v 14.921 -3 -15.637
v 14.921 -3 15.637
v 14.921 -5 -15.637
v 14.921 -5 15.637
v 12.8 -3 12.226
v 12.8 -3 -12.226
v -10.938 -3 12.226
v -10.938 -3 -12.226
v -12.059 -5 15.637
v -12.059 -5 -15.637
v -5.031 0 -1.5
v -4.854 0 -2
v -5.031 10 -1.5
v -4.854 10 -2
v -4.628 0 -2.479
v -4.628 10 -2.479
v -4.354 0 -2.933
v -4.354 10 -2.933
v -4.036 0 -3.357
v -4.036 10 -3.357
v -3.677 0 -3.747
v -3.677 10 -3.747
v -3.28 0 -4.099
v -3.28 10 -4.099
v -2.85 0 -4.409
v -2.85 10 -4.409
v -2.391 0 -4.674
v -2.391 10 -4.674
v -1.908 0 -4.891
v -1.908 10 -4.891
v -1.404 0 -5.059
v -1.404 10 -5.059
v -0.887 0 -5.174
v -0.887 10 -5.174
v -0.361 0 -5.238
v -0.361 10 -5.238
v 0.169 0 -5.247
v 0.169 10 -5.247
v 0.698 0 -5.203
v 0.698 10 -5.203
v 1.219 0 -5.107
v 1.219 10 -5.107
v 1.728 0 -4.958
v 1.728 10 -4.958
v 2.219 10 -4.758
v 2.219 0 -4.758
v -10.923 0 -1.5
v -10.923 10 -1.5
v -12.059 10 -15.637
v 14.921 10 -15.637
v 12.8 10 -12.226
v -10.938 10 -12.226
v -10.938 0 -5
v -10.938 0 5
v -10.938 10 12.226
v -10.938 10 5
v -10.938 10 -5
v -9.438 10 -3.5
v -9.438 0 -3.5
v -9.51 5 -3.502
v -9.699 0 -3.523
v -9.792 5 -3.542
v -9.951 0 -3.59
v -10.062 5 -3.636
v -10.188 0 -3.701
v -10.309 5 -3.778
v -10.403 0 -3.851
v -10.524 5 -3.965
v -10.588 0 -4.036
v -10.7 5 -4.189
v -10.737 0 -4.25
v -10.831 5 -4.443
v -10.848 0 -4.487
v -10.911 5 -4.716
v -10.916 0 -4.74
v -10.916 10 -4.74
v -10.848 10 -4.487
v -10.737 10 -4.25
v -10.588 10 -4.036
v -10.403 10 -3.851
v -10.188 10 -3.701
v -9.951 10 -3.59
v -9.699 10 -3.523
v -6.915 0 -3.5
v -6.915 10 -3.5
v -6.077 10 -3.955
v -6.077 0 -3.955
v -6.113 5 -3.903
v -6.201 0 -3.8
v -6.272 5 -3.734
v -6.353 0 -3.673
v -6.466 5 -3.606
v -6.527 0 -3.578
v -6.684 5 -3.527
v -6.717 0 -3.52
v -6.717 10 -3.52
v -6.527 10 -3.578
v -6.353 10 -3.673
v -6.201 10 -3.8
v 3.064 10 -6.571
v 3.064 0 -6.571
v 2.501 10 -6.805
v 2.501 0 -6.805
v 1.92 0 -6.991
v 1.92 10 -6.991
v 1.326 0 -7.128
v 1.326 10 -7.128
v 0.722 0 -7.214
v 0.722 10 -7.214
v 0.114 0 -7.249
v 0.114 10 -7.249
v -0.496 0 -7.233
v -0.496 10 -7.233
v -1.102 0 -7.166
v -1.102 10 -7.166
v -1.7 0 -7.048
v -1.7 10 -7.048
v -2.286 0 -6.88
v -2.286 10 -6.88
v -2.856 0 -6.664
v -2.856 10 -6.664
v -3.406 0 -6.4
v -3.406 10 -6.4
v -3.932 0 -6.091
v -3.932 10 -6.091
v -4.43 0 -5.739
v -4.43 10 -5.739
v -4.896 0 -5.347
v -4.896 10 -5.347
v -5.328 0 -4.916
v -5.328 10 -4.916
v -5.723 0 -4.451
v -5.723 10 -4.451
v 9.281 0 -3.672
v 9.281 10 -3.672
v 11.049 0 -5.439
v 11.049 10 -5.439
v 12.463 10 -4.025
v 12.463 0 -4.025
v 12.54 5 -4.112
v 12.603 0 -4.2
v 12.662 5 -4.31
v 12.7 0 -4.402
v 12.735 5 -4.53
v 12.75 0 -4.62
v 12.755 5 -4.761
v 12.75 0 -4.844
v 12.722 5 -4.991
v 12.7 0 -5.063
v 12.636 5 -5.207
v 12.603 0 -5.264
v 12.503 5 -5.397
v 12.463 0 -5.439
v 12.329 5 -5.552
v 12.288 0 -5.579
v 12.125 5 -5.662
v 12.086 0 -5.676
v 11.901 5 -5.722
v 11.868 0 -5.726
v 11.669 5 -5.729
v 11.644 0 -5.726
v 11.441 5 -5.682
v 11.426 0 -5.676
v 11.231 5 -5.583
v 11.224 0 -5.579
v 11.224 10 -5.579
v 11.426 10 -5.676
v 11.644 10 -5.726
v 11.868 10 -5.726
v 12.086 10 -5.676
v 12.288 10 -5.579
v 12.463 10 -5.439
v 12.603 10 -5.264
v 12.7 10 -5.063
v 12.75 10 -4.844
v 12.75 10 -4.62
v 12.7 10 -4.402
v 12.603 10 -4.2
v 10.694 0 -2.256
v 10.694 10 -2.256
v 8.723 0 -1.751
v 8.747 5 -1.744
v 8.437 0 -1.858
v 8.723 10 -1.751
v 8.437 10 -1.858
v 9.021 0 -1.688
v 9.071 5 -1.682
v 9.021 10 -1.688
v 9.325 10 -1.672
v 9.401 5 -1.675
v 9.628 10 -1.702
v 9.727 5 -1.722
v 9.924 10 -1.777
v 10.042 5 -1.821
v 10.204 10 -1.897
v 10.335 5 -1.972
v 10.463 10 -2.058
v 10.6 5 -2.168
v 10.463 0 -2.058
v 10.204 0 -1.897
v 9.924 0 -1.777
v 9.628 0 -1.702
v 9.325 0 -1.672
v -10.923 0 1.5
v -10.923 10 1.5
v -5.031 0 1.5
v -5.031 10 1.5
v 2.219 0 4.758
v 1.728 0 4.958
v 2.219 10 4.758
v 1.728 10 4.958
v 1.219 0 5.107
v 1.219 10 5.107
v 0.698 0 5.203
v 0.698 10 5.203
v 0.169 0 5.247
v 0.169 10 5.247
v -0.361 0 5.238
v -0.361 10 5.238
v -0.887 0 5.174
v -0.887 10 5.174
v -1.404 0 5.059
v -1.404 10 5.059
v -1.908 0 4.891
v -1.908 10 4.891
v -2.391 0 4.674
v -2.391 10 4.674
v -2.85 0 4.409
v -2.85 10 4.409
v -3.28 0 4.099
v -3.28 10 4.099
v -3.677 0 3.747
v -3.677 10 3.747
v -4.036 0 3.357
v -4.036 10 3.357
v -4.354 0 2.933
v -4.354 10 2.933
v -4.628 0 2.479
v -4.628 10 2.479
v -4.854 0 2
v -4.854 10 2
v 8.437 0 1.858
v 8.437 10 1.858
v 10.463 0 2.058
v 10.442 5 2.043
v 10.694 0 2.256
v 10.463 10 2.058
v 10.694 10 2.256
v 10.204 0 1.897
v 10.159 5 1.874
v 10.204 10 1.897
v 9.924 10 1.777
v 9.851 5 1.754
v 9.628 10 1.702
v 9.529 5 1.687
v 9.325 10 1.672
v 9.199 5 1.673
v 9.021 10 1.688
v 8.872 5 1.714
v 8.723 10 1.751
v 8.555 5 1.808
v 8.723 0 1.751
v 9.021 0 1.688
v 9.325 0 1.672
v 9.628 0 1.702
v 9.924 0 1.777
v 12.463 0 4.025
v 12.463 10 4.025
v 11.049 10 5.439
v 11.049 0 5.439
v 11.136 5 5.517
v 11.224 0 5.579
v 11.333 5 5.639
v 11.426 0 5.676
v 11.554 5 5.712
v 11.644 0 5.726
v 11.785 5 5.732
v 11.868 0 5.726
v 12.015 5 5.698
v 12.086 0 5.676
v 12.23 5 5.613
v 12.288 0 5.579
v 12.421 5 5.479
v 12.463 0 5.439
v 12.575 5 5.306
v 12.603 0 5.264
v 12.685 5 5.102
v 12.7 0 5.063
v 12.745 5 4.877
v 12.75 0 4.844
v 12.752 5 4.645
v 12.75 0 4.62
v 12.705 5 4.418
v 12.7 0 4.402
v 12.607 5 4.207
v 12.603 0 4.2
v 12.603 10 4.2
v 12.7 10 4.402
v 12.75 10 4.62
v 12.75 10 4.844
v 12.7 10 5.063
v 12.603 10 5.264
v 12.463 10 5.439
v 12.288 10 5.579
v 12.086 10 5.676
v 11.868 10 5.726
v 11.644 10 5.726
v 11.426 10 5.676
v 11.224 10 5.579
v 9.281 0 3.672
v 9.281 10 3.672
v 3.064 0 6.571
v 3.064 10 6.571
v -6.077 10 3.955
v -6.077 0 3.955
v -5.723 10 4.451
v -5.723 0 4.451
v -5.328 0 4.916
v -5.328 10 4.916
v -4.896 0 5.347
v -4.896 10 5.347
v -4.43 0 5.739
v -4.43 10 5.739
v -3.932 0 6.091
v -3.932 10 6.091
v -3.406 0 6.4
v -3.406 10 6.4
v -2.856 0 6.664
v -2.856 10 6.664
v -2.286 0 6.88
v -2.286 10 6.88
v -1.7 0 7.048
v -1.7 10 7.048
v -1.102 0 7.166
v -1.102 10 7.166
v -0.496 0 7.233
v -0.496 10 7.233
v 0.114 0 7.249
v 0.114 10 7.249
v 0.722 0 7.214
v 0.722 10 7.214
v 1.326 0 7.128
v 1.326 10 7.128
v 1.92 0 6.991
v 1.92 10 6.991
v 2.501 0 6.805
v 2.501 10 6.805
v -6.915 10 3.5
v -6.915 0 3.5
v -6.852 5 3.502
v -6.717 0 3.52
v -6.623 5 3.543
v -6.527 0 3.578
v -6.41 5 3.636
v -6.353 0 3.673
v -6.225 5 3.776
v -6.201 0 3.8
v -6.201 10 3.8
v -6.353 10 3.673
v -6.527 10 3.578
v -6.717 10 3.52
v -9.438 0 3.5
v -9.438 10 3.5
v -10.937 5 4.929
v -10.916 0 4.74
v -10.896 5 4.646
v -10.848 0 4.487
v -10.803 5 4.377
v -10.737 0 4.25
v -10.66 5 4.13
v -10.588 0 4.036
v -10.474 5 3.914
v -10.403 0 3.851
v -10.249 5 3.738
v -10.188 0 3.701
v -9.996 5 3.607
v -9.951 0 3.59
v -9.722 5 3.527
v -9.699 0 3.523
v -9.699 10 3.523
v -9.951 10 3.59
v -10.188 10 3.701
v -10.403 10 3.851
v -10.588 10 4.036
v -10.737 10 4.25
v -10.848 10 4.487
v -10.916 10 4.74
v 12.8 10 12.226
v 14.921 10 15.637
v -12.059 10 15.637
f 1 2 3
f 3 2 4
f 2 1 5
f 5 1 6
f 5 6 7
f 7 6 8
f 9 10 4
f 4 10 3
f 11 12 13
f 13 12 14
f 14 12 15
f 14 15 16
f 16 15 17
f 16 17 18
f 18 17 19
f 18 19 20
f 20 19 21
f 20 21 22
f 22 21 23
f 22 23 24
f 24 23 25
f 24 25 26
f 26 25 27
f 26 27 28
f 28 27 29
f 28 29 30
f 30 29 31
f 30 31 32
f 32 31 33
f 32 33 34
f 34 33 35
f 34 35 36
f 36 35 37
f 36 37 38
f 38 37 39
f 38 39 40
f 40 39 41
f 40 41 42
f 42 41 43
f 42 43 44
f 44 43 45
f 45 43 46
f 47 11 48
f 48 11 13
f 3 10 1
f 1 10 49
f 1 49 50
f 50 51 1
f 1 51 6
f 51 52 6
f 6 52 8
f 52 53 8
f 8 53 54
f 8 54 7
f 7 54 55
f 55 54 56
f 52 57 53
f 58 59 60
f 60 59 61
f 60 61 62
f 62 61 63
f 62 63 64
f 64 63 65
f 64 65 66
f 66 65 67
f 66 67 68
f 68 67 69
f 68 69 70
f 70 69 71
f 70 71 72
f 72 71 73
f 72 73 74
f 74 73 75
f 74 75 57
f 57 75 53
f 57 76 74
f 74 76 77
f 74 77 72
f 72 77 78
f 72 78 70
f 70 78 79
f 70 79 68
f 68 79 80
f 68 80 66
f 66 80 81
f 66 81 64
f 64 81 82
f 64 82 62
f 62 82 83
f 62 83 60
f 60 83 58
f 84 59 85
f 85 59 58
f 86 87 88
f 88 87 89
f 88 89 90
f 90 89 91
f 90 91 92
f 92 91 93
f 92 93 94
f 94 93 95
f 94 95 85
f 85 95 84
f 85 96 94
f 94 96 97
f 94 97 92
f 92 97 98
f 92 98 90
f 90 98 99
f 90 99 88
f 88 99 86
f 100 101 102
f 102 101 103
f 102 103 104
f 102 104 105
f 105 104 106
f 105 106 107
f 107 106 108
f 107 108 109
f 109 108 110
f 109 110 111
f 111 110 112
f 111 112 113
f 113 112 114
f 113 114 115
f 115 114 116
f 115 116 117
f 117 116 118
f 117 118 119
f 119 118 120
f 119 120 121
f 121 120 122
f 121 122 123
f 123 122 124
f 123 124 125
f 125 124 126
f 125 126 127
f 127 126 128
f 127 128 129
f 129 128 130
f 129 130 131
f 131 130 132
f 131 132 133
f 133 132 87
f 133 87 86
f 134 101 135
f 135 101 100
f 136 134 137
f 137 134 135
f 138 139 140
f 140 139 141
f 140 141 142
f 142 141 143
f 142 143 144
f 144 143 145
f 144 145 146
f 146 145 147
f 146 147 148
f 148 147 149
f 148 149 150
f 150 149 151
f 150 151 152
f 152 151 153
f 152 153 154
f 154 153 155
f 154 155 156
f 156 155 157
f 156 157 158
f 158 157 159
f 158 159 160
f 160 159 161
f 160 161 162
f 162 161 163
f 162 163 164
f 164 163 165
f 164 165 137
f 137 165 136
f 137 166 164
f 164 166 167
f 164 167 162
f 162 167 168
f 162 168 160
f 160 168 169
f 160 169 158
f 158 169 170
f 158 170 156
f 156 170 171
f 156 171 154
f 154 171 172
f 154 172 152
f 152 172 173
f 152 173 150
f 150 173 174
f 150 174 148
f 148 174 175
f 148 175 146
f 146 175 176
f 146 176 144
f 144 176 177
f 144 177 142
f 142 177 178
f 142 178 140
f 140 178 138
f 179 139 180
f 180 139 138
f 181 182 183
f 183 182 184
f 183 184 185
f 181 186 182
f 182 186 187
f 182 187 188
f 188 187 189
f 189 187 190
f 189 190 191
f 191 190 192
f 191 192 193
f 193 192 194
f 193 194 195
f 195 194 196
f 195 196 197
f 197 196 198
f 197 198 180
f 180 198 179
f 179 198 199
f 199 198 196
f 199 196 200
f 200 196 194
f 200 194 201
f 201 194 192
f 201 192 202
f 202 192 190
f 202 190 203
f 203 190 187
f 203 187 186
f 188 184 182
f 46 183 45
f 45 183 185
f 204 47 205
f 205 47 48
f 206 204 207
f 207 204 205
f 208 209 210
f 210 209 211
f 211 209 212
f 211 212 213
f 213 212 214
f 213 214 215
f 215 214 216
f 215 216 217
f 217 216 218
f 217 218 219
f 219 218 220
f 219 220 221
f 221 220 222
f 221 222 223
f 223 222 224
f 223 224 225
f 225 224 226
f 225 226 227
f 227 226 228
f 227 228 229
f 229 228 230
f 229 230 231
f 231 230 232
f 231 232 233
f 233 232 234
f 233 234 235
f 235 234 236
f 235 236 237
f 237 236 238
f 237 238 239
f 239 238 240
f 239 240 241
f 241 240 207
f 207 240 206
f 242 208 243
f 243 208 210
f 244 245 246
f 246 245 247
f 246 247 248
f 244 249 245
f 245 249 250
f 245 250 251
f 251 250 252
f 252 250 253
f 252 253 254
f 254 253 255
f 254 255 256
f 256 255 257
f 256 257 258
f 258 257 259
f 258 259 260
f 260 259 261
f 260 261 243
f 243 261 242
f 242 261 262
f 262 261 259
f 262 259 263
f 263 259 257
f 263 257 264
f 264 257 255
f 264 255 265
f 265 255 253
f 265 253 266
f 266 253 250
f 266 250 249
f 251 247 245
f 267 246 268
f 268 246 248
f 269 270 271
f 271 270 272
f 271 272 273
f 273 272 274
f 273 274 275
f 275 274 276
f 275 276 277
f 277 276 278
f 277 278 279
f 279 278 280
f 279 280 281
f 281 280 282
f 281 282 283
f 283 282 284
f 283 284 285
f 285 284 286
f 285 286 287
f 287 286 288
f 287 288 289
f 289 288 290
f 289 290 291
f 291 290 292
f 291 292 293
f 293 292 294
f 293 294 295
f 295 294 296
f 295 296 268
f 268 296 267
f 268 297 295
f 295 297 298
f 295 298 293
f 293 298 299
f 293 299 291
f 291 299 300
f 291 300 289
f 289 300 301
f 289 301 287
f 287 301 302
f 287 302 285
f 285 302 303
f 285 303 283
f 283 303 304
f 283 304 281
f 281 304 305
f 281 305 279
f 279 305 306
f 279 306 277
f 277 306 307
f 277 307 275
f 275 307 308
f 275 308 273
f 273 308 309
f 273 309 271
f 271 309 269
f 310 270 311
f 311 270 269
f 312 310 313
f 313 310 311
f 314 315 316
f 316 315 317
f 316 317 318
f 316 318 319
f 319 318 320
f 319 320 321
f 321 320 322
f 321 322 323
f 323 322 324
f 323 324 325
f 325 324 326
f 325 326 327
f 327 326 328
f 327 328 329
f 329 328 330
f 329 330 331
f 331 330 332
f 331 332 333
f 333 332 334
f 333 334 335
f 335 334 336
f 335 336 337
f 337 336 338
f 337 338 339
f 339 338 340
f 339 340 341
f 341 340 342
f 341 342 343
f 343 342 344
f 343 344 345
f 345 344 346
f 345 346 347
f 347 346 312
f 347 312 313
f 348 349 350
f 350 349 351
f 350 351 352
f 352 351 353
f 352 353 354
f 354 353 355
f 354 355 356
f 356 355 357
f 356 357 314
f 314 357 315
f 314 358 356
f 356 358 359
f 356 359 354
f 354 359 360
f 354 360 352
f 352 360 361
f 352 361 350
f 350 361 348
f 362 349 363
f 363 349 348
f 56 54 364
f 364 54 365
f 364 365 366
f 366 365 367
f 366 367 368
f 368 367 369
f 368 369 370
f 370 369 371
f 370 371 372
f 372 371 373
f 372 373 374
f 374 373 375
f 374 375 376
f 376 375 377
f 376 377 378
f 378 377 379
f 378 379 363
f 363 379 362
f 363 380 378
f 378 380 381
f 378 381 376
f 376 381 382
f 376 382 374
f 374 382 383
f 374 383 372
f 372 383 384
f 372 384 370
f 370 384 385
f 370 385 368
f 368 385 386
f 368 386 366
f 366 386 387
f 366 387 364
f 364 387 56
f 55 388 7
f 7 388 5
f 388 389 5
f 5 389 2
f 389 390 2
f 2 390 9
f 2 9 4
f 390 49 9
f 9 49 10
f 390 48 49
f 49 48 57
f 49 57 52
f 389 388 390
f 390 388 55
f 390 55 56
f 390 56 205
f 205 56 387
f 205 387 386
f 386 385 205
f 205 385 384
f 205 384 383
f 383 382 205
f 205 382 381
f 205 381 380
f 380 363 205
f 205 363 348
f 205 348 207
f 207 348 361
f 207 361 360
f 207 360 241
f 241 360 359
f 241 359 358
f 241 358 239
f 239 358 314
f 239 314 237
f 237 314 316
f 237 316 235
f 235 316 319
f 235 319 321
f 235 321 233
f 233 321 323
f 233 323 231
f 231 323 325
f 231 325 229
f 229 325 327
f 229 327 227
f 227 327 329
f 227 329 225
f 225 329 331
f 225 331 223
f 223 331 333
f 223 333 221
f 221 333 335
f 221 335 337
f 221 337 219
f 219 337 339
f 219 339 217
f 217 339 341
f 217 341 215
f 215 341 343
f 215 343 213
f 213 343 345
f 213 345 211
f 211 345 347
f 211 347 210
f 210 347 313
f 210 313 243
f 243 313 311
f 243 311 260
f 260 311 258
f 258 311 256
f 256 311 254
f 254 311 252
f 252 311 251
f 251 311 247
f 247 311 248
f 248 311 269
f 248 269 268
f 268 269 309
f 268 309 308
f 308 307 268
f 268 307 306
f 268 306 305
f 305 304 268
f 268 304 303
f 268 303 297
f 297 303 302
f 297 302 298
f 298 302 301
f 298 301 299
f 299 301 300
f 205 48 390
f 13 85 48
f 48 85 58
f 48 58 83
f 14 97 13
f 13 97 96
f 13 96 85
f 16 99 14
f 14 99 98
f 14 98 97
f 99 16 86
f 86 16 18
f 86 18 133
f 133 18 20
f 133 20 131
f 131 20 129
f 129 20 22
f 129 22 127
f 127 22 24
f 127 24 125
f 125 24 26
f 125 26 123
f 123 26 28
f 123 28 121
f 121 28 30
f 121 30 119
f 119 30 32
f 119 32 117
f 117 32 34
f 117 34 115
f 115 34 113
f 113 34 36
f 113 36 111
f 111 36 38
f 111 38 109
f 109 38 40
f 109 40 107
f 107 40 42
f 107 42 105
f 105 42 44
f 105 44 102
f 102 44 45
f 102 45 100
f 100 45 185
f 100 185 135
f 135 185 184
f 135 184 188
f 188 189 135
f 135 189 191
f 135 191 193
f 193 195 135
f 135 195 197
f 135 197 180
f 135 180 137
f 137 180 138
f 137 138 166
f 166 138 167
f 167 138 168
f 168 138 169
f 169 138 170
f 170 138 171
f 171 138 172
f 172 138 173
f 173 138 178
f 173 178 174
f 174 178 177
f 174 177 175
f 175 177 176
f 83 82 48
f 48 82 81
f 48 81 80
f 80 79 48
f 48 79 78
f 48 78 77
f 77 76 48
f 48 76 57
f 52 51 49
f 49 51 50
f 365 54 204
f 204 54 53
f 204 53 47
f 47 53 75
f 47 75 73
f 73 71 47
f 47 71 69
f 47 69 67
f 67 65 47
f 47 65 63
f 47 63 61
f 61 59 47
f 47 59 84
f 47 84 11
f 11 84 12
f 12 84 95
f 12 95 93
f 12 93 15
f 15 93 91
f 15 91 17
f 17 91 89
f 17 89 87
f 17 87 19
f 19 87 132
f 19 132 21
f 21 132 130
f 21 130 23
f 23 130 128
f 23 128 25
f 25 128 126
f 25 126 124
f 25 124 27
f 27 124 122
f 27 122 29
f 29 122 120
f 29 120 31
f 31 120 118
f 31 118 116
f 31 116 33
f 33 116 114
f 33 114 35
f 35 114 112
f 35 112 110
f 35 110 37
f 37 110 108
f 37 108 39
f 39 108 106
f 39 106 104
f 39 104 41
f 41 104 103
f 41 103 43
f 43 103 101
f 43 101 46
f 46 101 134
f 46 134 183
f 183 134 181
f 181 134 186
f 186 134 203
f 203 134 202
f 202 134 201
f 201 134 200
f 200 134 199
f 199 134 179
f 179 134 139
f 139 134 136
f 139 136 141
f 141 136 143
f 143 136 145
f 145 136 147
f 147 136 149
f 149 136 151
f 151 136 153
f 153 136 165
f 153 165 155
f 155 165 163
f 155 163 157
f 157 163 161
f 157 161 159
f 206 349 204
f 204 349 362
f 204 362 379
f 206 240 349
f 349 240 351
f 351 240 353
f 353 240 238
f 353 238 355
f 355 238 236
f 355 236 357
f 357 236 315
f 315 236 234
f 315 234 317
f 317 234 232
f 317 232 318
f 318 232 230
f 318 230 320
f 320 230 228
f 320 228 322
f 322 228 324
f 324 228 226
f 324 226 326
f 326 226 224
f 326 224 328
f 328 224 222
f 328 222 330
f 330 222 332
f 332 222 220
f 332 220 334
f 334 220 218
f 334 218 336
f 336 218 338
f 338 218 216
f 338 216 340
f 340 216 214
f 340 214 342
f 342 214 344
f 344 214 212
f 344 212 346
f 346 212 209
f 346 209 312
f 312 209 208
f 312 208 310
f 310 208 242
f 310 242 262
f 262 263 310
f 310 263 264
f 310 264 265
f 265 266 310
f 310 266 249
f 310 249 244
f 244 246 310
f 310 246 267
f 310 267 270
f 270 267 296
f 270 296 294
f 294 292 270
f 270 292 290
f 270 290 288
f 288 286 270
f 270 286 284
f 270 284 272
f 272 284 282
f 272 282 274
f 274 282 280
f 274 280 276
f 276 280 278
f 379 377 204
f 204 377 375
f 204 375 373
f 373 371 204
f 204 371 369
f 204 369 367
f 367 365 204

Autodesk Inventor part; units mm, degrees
ref_plane "YZ Plane" through (0, 0, 0) normal (1, 0, 0) x (0, 1, 0)
ref_plane "XZ Plane" through (0, 0, 0) normal (0, 1, 0) x (-1, 0, 0)
ref_plane "XY Plane" through (0, 0, 0) normal (0, 0, 1) x (1, 0, 0)
sketch "Sketch1" plane through (0, 0, 0) normal (0, 1, 0) x (-1, 0, 0)
  circle A0 centre (0, 0) radius 5
  arc A1 (5.25, 0) -> (-2.2187, -4.7581) centre (0, 0) ccw
  line L0 (-2.2187, -4.7581) -> (-8.4373, -1.8583)
  arc A2 (-8.4373, -1.8583) -> (-10.6939, -2.2562) centre (-9.2815, -3.6687) ccw
  line L1 (-10.6939, -2.2562) -> (-12.463, -4.0253)
  arc A3 (-12.463, -4.0253) -> (-11.0487, -5.4395) centre (-11.7558, -4.7324) ccw
  line L2 (-11.0487, -5.4395) -> (-9.281, -3.6717)
  line L3 (-9.281, -3.6717) -> (-3.064, -6.5707)
  arc A4 (-3.064, -6.5707) -> (6.0765, -3.9545) centre (0, 0) ccw
  line L4 (6.9147, -3.5) -> (9.4384, -3.5)
  line L5 (5.0312, -1.5) -> (10.9225, -1.5)
  line L6 (10.9384, -5) -> (10.9384, -12.2255)
  line L7 (10.9384, -12.2255) -> (-12.8, -12.2255)
  line L8 (10.9225, -1.5) -> (10.9225, 0)
  line L9 (12.0588, 0) -> (12.0588, -15.6375)
  line L10 (12.0588, -15.6375) -> (-14.9211, -15.6375)
  line L11 (0, 0) -> (7.7398, 0) construction
  line L12 (-12.8, -12.2255) -> (-14.9211, -15.6375)
  line L13 (10.9225, 0) -> (12.0588, 0)
  arc A5 (5.0312, -1.5) -> (5.25, 0) centre (0, 0) ccw
  arc A6 (-2.2187, -4.7581) -> (5.0312, -1.5) centre (0, 0) ccw
  arc A7 (10.9384, -5) -> (9.4384, -3.5) centre (9.4384, -5) ccw
  arc A8 (6.9147, -3.5) -> (6.0765, -3.9545) centre (6.9147, -4.5) ccw
  line L14 (-2.2187, 4.7581) -> (-8.4373, 1.8583)
  arc A9 (-10.6939, 2.2562) -> (-8.4373, 1.8583) centre (-9.2815, 3.6687) ccw
  line L15 (-10.6939, 2.2562) -> (-12.463, 4.0253)
  arc A10 (-11.0487, 5.4395) -> (-12.463, 4.0253) centre (-11.7558, 4.7324) ccw
  line L16 (-11.0487, 5.4395) -> (-9.281, 3.6717)
  line L17 (-9.281, 3.6717) -> (-3.064, 6.5707)
  arc A11 (6.0765, 3.9545) -> (-3.064, 6.5707) centre (0, 0) ccw
  line L18 (6.9147, 3.5) -> (9.4384, 3.5)
  line L19 (5.0312, 1.5) -> (10.9225, 1.5)
  line L20 (10.9384, 5) -> (10.9384, 12.2255)
  line L21 (10.9384, 12.2255) -> (-12.8, 12.2255)
  line L22 (10.9225, 1.5) -> (10.9225, 0)
  line L23 (12.0588, 0) -> (12.0588, 15.6375)
  line L24 (12.0588, 15.6375) -> (-14.9211, 15.6375)
  line L25 (-12.8, 12.2255) -> (-14.9211, 15.6375)
  arc A12 (5.0312, 1.5) -> (-2.2187, 4.7581) centre (0, 0) ccw
  arc A13 (9.4384, 3.5) -> (10.9384, 5) centre (9.4384, 5) ccw
  arc A14 (6.0765, 3.9545) -> (6.9147, 3.5) centre (6.9147, 4.5) ccw
  point P0 (6.3492, -3.5)
  point P1 (10.9384, -3.5)
  point P2 (6.3492, 3.5)
  point P3 (10.9384, 3.5)
  dimension "d0" = 10
  dimension "d1" = 10.5
  dimension "d2" = 2
  dimension "d3" = 2
  dimension "d4" = 2
  dimension "d5" = 25
  dimension "d6" = 1.5
  dimension "d7" = 110
  dimension "d8" = 2.5
  dimension "d11" = 1.5
  dimension "d12" = 1
extrude "Extrusion1" add sketch "Sketch1" along normal blind 10 contours A1 L14 A9 L15 A10 L16 L17 A11 A14 L18 A13 L20 L21 L25 L24 L23 L13 L22 L19 | L5 L8 L13 L9 L10 L12 L7 L6 A7 L4 A8 A4 L3 L2 A3 L1 A2 L0 A6
sketch "Sketch2" plane through (0, 0, 0) normal (0, -1, 0) x (1, 0, 0)
  line L0 (-10.9225, 1.5) -> (-10.9225, -1.5) projected
  line L1 (-5.0312, 1.5) -> (-10.9225, 1.5) projected
  arc A0 (2.2187, 4.7581) -> (-5.0312, 1.5) centre (0, 0) ccw projected
  line L2 (8.4373, 1.8583) -> (2.2187, 4.7581) projected
  arc A1 (8.4373, 1.8583) -> (10.6939, 2.2562) centre (9.2815, 3.6687) ccw projected
  line L3 (12.463, 4.0253) -> (10.6939, 2.2562) projected
  arc A2 (12.463, 4.0253) -> (11.0487, 5.4395) centre (11.7558, 4.7324) ccw projected
  line L4 (9.281, 3.6717) -> (11.0487, 5.4395) projected
  line L5 (3.064, 6.5707) -> (9.281, 3.6717) projected
  arc A3 (3.064, 6.5707) -> (-6.0765, 3.9545) centre (0, 0) ccw projected
  arc A4 (-6.9147, 3.5) -> (-6.0765, 3.9545) centre (-6.9147, 4.5) ccw projected
  line L6 (-9.4384, 3.5) -> (-6.9147, 3.5) projected
  arc A5 (-10.9384, 5) -> (-9.4384, 3.5) centre (-9.4384, 5) ccw projected
  line L7 (-10.9384, 12.2255) -> (-10.9384, 5) projected
  line L8 (12.8, 12.2255) -> (-10.9384, 12.2255) projected
  line L9 (14.9211, 15.6375) -> (12.8, 12.2255) projected
  line L10 (-12.0588, 15.6375) -> (14.9211, 15.6375) projected
  line L11 (-12.0588, -15.6375) -> (-12.0588, 15.6375) projected
  line L12 (14.9211, -15.6375) -> (-12.0588, -15.6375) projected
  line L13 (12.8, -12.2255) -> (14.9211, -15.6375) projected
  line L14 (-10.9384, -12.2255) -> (12.8, -12.2255) projected
  line L15 (-10.9384, -5) -> (-10.9384, -12.2255) projected
  arc A6 (-9.4384, -3.5) -> (-10.9384, -5) centre (-9.4384, -5) ccw projected
  line L16 (-6.9147, -3.5) -> (-9.4384, -3.5) projected
  arc A7 (-6.0765, -3.9545) -> (-6.9147, -3.5) centre (-6.9147, -4.5) ccw projected
  arc A8 (-6.0765, -3.9545) -> (3.064, -6.5707) centre (0, 0) ccw projected
  line L17 (9.281, -3.6717) -> (3.064, -6.5707) projected
  line L18 (11.0487, -5.4395) -> (9.281, -3.6717) projected
  arc A9 (11.0487, -5.4395) -> (12.463, -4.0253) centre (11.7558, -4.7324) ccw projected
  line L19 (10.6939, -2.2562) -> (12.463, -4.0253) projected
  arc A10 (10.6939, -2.2562) -> (8.4373, -1.8583) centre (9.2815, -3.6687) ccw projected
  line L20 (2.2187, -4.7581) -> (8.4373, -1.8583) projected
  arc A11 (-5.0312, -1.5) -> (2.2187, -4.7581) centre (0, 0) ccw projected
  line L21 (-10.9225, -1.5) -> (-5.0312, -1.5) projected
  arc A12 (-9.4384, -3.5) -> (-10.9384, -5) centre (-9.4384, -5) ccw projected
  line L22 (-10.9384, 5) -> (-10.9384, -5)
extrude "Extrusion2" add sketch "Sketch2" along normal blind 3 contours L22 L15 L14 L13 L12 L11 L10 L9 L8 L7
sketch "Sketch3" plane through (0, -3, 0) normal (0, -1, 0) x (1, 0, 0)
  line L0 (14.9211, -15.6375) -> (12.8, -12.2255) projected
  line L1 (-12.0588, 15.6375) -> (14.9211, 15.6375)
  line L2 (14.9211, 15.6375) -> (14.9211, -15.6375)
  line L3 (14.9211, -15.6375) -> (-12.0588, -15.6375)
  line L4 (-12.0588, -15.6375) -> (-12.0588, 15.6375)
  point P0 (0, 0)
extrude "Extrusion3" add sketch "Sketch3" along normal blind 2
properties part number "shaft holder clip"
